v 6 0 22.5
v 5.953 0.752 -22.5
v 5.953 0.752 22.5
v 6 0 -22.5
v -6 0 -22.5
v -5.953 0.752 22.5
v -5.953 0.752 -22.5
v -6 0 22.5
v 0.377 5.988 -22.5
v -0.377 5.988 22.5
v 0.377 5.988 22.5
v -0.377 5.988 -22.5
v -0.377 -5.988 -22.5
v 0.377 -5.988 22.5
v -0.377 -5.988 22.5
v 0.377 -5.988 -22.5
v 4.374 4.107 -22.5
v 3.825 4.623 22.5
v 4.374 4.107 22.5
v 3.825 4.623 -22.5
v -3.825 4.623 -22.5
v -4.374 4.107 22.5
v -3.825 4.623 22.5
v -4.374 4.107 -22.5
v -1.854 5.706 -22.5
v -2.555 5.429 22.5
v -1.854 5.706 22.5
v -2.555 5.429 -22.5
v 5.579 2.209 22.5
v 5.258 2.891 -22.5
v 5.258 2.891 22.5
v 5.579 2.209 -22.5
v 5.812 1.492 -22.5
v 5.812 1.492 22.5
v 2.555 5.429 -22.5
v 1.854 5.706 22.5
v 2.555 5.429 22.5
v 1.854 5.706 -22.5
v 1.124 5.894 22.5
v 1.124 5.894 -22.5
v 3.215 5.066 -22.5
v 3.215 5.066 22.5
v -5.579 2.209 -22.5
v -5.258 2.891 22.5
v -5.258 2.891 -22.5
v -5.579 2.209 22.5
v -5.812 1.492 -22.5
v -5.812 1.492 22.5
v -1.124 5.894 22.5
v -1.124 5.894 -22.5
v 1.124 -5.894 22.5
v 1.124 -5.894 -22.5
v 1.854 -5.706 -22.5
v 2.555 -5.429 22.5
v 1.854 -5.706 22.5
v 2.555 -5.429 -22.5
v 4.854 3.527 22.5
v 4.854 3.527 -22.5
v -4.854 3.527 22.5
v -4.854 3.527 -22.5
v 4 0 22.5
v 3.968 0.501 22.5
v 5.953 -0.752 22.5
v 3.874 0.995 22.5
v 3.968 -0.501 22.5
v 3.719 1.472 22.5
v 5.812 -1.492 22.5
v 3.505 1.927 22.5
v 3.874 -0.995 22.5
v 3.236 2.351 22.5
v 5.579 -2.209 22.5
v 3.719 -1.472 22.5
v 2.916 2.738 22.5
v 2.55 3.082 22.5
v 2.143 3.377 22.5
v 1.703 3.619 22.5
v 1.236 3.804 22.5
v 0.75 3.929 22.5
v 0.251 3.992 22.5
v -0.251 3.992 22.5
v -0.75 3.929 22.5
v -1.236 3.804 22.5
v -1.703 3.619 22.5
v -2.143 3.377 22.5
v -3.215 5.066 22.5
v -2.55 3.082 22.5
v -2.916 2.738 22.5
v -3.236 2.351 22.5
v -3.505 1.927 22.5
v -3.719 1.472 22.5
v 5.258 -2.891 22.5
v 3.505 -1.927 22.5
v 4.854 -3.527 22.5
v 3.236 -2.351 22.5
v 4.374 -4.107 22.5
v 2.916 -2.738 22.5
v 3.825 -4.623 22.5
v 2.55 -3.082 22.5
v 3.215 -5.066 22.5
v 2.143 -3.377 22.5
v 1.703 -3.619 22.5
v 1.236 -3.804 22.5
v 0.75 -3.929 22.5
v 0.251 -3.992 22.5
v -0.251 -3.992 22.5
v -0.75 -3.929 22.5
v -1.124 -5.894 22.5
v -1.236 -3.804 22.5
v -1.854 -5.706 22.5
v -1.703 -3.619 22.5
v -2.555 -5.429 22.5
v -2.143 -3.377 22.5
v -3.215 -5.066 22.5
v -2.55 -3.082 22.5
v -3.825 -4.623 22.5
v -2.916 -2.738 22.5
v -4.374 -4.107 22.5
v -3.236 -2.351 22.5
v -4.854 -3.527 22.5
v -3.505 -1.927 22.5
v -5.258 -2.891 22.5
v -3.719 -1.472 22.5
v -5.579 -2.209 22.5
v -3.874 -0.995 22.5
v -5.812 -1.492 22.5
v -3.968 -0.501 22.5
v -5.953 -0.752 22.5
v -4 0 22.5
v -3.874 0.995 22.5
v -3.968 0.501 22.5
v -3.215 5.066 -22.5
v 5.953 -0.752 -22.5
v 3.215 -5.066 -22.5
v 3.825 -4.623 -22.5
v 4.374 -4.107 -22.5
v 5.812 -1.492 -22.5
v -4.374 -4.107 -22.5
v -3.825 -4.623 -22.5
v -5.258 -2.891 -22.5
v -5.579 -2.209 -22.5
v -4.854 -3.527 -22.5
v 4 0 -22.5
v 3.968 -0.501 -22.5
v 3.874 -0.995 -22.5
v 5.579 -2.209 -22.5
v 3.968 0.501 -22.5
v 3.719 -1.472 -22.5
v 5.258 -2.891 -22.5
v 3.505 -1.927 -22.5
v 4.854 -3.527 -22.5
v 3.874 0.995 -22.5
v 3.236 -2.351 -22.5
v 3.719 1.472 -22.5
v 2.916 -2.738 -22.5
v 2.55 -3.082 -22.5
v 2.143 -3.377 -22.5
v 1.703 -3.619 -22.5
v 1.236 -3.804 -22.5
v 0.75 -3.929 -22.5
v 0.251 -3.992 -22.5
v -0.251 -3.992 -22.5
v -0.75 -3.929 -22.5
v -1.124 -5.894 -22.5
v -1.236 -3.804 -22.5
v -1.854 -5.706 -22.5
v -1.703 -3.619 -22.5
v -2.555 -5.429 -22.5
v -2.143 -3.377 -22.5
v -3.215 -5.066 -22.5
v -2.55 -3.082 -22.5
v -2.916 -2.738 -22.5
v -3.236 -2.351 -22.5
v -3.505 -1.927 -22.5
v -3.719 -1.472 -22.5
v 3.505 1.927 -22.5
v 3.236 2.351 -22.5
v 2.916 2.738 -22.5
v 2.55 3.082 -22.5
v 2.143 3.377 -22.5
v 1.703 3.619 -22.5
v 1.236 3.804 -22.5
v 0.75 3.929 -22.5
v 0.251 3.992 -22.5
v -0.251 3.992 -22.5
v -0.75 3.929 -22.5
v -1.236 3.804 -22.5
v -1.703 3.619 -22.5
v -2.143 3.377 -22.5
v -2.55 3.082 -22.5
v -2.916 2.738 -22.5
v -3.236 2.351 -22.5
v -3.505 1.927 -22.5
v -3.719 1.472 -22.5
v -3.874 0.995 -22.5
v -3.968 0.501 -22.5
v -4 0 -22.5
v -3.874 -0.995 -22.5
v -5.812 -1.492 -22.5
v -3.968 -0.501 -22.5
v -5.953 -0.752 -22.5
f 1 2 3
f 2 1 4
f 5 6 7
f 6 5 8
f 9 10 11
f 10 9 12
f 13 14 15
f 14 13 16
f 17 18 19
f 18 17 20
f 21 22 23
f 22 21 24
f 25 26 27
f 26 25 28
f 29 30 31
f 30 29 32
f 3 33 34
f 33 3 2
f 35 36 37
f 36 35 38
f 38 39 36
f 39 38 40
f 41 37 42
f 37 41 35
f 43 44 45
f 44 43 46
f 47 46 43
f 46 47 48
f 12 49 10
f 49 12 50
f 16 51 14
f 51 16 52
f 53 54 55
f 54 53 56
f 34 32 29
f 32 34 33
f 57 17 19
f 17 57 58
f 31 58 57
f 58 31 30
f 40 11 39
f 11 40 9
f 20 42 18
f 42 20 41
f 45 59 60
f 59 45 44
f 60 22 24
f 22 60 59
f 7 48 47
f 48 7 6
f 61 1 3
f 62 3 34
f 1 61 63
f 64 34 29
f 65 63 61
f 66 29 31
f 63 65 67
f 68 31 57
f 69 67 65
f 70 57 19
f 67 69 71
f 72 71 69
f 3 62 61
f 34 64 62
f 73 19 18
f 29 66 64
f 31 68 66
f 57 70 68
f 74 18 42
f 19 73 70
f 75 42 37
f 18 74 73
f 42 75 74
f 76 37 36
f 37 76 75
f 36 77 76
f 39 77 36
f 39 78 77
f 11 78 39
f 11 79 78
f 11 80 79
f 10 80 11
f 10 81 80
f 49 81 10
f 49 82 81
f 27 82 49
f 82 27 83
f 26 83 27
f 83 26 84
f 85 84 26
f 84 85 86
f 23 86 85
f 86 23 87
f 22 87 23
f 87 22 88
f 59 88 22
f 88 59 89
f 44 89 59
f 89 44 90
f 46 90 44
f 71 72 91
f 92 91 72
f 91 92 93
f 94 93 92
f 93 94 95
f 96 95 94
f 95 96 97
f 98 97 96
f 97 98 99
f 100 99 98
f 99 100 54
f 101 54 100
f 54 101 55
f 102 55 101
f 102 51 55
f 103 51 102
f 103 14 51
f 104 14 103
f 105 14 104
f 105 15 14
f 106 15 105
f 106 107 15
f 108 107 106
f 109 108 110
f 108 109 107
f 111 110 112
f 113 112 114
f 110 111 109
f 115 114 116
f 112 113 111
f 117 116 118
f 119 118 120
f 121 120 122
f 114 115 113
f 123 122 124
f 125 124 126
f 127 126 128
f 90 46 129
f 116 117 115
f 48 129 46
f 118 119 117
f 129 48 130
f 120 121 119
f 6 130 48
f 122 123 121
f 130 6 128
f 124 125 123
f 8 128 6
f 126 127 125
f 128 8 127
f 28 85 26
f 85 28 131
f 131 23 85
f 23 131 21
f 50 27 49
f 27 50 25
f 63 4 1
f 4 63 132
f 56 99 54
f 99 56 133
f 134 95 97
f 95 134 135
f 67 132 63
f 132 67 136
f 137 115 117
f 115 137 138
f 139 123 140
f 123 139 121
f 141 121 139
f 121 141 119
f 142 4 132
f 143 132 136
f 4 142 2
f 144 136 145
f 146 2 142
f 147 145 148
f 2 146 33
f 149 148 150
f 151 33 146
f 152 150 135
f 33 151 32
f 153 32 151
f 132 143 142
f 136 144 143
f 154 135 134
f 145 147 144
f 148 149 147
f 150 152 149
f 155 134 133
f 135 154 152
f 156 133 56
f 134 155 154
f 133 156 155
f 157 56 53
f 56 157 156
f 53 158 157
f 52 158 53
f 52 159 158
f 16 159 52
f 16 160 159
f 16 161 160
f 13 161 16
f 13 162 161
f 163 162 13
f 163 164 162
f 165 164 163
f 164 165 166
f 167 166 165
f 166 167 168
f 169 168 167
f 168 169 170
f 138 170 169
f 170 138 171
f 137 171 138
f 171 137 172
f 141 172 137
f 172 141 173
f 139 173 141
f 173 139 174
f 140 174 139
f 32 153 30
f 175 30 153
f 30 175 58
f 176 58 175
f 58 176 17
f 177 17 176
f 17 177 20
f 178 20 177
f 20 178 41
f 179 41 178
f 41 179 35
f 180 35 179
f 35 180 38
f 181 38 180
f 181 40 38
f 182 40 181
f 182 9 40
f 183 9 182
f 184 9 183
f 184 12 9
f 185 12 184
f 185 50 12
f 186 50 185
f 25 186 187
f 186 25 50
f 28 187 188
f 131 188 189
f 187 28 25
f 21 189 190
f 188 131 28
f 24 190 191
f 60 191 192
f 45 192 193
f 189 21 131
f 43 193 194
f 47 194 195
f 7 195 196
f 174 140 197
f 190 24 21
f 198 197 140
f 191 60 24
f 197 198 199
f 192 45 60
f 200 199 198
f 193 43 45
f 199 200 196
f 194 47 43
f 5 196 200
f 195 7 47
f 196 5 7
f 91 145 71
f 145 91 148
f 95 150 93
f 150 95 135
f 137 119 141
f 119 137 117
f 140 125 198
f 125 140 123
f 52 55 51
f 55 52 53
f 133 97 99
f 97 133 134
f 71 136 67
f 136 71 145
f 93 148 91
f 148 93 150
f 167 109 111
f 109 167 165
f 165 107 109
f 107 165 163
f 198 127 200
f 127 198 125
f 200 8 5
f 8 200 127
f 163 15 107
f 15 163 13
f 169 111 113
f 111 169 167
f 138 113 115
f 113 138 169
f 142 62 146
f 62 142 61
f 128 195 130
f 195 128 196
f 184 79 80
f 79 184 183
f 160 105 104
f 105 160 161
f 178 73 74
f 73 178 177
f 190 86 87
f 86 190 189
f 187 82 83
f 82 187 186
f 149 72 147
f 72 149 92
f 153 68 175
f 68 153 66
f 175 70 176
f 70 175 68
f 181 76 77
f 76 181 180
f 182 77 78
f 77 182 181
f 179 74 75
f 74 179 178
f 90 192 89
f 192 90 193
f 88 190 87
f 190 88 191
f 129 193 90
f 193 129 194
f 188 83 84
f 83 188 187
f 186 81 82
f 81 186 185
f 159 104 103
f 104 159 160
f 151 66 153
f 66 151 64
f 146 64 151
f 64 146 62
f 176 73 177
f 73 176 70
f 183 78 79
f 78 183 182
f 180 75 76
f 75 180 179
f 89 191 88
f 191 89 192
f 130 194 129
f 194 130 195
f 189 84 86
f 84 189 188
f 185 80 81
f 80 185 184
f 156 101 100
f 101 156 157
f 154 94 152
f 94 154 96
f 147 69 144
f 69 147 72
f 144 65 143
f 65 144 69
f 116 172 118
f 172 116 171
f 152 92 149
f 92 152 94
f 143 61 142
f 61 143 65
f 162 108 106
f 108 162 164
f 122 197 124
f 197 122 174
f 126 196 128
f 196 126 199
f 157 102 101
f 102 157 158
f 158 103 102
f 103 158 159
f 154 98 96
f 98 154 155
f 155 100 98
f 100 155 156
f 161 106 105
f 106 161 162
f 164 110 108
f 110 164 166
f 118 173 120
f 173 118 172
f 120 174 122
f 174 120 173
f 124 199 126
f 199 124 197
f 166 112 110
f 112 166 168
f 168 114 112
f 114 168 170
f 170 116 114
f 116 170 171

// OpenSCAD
$fn = 50;


difference() {
	union() {
		translate(v = [0, 0, -22.5000000000]) {
			cylinder(h = 45, r = 6.0000000000);
		}
	}
	union() {
		translate(v = [0, 0, -100.0000000000]) {
			cylinder(h = 200, r = 4);
		}
	}
}
